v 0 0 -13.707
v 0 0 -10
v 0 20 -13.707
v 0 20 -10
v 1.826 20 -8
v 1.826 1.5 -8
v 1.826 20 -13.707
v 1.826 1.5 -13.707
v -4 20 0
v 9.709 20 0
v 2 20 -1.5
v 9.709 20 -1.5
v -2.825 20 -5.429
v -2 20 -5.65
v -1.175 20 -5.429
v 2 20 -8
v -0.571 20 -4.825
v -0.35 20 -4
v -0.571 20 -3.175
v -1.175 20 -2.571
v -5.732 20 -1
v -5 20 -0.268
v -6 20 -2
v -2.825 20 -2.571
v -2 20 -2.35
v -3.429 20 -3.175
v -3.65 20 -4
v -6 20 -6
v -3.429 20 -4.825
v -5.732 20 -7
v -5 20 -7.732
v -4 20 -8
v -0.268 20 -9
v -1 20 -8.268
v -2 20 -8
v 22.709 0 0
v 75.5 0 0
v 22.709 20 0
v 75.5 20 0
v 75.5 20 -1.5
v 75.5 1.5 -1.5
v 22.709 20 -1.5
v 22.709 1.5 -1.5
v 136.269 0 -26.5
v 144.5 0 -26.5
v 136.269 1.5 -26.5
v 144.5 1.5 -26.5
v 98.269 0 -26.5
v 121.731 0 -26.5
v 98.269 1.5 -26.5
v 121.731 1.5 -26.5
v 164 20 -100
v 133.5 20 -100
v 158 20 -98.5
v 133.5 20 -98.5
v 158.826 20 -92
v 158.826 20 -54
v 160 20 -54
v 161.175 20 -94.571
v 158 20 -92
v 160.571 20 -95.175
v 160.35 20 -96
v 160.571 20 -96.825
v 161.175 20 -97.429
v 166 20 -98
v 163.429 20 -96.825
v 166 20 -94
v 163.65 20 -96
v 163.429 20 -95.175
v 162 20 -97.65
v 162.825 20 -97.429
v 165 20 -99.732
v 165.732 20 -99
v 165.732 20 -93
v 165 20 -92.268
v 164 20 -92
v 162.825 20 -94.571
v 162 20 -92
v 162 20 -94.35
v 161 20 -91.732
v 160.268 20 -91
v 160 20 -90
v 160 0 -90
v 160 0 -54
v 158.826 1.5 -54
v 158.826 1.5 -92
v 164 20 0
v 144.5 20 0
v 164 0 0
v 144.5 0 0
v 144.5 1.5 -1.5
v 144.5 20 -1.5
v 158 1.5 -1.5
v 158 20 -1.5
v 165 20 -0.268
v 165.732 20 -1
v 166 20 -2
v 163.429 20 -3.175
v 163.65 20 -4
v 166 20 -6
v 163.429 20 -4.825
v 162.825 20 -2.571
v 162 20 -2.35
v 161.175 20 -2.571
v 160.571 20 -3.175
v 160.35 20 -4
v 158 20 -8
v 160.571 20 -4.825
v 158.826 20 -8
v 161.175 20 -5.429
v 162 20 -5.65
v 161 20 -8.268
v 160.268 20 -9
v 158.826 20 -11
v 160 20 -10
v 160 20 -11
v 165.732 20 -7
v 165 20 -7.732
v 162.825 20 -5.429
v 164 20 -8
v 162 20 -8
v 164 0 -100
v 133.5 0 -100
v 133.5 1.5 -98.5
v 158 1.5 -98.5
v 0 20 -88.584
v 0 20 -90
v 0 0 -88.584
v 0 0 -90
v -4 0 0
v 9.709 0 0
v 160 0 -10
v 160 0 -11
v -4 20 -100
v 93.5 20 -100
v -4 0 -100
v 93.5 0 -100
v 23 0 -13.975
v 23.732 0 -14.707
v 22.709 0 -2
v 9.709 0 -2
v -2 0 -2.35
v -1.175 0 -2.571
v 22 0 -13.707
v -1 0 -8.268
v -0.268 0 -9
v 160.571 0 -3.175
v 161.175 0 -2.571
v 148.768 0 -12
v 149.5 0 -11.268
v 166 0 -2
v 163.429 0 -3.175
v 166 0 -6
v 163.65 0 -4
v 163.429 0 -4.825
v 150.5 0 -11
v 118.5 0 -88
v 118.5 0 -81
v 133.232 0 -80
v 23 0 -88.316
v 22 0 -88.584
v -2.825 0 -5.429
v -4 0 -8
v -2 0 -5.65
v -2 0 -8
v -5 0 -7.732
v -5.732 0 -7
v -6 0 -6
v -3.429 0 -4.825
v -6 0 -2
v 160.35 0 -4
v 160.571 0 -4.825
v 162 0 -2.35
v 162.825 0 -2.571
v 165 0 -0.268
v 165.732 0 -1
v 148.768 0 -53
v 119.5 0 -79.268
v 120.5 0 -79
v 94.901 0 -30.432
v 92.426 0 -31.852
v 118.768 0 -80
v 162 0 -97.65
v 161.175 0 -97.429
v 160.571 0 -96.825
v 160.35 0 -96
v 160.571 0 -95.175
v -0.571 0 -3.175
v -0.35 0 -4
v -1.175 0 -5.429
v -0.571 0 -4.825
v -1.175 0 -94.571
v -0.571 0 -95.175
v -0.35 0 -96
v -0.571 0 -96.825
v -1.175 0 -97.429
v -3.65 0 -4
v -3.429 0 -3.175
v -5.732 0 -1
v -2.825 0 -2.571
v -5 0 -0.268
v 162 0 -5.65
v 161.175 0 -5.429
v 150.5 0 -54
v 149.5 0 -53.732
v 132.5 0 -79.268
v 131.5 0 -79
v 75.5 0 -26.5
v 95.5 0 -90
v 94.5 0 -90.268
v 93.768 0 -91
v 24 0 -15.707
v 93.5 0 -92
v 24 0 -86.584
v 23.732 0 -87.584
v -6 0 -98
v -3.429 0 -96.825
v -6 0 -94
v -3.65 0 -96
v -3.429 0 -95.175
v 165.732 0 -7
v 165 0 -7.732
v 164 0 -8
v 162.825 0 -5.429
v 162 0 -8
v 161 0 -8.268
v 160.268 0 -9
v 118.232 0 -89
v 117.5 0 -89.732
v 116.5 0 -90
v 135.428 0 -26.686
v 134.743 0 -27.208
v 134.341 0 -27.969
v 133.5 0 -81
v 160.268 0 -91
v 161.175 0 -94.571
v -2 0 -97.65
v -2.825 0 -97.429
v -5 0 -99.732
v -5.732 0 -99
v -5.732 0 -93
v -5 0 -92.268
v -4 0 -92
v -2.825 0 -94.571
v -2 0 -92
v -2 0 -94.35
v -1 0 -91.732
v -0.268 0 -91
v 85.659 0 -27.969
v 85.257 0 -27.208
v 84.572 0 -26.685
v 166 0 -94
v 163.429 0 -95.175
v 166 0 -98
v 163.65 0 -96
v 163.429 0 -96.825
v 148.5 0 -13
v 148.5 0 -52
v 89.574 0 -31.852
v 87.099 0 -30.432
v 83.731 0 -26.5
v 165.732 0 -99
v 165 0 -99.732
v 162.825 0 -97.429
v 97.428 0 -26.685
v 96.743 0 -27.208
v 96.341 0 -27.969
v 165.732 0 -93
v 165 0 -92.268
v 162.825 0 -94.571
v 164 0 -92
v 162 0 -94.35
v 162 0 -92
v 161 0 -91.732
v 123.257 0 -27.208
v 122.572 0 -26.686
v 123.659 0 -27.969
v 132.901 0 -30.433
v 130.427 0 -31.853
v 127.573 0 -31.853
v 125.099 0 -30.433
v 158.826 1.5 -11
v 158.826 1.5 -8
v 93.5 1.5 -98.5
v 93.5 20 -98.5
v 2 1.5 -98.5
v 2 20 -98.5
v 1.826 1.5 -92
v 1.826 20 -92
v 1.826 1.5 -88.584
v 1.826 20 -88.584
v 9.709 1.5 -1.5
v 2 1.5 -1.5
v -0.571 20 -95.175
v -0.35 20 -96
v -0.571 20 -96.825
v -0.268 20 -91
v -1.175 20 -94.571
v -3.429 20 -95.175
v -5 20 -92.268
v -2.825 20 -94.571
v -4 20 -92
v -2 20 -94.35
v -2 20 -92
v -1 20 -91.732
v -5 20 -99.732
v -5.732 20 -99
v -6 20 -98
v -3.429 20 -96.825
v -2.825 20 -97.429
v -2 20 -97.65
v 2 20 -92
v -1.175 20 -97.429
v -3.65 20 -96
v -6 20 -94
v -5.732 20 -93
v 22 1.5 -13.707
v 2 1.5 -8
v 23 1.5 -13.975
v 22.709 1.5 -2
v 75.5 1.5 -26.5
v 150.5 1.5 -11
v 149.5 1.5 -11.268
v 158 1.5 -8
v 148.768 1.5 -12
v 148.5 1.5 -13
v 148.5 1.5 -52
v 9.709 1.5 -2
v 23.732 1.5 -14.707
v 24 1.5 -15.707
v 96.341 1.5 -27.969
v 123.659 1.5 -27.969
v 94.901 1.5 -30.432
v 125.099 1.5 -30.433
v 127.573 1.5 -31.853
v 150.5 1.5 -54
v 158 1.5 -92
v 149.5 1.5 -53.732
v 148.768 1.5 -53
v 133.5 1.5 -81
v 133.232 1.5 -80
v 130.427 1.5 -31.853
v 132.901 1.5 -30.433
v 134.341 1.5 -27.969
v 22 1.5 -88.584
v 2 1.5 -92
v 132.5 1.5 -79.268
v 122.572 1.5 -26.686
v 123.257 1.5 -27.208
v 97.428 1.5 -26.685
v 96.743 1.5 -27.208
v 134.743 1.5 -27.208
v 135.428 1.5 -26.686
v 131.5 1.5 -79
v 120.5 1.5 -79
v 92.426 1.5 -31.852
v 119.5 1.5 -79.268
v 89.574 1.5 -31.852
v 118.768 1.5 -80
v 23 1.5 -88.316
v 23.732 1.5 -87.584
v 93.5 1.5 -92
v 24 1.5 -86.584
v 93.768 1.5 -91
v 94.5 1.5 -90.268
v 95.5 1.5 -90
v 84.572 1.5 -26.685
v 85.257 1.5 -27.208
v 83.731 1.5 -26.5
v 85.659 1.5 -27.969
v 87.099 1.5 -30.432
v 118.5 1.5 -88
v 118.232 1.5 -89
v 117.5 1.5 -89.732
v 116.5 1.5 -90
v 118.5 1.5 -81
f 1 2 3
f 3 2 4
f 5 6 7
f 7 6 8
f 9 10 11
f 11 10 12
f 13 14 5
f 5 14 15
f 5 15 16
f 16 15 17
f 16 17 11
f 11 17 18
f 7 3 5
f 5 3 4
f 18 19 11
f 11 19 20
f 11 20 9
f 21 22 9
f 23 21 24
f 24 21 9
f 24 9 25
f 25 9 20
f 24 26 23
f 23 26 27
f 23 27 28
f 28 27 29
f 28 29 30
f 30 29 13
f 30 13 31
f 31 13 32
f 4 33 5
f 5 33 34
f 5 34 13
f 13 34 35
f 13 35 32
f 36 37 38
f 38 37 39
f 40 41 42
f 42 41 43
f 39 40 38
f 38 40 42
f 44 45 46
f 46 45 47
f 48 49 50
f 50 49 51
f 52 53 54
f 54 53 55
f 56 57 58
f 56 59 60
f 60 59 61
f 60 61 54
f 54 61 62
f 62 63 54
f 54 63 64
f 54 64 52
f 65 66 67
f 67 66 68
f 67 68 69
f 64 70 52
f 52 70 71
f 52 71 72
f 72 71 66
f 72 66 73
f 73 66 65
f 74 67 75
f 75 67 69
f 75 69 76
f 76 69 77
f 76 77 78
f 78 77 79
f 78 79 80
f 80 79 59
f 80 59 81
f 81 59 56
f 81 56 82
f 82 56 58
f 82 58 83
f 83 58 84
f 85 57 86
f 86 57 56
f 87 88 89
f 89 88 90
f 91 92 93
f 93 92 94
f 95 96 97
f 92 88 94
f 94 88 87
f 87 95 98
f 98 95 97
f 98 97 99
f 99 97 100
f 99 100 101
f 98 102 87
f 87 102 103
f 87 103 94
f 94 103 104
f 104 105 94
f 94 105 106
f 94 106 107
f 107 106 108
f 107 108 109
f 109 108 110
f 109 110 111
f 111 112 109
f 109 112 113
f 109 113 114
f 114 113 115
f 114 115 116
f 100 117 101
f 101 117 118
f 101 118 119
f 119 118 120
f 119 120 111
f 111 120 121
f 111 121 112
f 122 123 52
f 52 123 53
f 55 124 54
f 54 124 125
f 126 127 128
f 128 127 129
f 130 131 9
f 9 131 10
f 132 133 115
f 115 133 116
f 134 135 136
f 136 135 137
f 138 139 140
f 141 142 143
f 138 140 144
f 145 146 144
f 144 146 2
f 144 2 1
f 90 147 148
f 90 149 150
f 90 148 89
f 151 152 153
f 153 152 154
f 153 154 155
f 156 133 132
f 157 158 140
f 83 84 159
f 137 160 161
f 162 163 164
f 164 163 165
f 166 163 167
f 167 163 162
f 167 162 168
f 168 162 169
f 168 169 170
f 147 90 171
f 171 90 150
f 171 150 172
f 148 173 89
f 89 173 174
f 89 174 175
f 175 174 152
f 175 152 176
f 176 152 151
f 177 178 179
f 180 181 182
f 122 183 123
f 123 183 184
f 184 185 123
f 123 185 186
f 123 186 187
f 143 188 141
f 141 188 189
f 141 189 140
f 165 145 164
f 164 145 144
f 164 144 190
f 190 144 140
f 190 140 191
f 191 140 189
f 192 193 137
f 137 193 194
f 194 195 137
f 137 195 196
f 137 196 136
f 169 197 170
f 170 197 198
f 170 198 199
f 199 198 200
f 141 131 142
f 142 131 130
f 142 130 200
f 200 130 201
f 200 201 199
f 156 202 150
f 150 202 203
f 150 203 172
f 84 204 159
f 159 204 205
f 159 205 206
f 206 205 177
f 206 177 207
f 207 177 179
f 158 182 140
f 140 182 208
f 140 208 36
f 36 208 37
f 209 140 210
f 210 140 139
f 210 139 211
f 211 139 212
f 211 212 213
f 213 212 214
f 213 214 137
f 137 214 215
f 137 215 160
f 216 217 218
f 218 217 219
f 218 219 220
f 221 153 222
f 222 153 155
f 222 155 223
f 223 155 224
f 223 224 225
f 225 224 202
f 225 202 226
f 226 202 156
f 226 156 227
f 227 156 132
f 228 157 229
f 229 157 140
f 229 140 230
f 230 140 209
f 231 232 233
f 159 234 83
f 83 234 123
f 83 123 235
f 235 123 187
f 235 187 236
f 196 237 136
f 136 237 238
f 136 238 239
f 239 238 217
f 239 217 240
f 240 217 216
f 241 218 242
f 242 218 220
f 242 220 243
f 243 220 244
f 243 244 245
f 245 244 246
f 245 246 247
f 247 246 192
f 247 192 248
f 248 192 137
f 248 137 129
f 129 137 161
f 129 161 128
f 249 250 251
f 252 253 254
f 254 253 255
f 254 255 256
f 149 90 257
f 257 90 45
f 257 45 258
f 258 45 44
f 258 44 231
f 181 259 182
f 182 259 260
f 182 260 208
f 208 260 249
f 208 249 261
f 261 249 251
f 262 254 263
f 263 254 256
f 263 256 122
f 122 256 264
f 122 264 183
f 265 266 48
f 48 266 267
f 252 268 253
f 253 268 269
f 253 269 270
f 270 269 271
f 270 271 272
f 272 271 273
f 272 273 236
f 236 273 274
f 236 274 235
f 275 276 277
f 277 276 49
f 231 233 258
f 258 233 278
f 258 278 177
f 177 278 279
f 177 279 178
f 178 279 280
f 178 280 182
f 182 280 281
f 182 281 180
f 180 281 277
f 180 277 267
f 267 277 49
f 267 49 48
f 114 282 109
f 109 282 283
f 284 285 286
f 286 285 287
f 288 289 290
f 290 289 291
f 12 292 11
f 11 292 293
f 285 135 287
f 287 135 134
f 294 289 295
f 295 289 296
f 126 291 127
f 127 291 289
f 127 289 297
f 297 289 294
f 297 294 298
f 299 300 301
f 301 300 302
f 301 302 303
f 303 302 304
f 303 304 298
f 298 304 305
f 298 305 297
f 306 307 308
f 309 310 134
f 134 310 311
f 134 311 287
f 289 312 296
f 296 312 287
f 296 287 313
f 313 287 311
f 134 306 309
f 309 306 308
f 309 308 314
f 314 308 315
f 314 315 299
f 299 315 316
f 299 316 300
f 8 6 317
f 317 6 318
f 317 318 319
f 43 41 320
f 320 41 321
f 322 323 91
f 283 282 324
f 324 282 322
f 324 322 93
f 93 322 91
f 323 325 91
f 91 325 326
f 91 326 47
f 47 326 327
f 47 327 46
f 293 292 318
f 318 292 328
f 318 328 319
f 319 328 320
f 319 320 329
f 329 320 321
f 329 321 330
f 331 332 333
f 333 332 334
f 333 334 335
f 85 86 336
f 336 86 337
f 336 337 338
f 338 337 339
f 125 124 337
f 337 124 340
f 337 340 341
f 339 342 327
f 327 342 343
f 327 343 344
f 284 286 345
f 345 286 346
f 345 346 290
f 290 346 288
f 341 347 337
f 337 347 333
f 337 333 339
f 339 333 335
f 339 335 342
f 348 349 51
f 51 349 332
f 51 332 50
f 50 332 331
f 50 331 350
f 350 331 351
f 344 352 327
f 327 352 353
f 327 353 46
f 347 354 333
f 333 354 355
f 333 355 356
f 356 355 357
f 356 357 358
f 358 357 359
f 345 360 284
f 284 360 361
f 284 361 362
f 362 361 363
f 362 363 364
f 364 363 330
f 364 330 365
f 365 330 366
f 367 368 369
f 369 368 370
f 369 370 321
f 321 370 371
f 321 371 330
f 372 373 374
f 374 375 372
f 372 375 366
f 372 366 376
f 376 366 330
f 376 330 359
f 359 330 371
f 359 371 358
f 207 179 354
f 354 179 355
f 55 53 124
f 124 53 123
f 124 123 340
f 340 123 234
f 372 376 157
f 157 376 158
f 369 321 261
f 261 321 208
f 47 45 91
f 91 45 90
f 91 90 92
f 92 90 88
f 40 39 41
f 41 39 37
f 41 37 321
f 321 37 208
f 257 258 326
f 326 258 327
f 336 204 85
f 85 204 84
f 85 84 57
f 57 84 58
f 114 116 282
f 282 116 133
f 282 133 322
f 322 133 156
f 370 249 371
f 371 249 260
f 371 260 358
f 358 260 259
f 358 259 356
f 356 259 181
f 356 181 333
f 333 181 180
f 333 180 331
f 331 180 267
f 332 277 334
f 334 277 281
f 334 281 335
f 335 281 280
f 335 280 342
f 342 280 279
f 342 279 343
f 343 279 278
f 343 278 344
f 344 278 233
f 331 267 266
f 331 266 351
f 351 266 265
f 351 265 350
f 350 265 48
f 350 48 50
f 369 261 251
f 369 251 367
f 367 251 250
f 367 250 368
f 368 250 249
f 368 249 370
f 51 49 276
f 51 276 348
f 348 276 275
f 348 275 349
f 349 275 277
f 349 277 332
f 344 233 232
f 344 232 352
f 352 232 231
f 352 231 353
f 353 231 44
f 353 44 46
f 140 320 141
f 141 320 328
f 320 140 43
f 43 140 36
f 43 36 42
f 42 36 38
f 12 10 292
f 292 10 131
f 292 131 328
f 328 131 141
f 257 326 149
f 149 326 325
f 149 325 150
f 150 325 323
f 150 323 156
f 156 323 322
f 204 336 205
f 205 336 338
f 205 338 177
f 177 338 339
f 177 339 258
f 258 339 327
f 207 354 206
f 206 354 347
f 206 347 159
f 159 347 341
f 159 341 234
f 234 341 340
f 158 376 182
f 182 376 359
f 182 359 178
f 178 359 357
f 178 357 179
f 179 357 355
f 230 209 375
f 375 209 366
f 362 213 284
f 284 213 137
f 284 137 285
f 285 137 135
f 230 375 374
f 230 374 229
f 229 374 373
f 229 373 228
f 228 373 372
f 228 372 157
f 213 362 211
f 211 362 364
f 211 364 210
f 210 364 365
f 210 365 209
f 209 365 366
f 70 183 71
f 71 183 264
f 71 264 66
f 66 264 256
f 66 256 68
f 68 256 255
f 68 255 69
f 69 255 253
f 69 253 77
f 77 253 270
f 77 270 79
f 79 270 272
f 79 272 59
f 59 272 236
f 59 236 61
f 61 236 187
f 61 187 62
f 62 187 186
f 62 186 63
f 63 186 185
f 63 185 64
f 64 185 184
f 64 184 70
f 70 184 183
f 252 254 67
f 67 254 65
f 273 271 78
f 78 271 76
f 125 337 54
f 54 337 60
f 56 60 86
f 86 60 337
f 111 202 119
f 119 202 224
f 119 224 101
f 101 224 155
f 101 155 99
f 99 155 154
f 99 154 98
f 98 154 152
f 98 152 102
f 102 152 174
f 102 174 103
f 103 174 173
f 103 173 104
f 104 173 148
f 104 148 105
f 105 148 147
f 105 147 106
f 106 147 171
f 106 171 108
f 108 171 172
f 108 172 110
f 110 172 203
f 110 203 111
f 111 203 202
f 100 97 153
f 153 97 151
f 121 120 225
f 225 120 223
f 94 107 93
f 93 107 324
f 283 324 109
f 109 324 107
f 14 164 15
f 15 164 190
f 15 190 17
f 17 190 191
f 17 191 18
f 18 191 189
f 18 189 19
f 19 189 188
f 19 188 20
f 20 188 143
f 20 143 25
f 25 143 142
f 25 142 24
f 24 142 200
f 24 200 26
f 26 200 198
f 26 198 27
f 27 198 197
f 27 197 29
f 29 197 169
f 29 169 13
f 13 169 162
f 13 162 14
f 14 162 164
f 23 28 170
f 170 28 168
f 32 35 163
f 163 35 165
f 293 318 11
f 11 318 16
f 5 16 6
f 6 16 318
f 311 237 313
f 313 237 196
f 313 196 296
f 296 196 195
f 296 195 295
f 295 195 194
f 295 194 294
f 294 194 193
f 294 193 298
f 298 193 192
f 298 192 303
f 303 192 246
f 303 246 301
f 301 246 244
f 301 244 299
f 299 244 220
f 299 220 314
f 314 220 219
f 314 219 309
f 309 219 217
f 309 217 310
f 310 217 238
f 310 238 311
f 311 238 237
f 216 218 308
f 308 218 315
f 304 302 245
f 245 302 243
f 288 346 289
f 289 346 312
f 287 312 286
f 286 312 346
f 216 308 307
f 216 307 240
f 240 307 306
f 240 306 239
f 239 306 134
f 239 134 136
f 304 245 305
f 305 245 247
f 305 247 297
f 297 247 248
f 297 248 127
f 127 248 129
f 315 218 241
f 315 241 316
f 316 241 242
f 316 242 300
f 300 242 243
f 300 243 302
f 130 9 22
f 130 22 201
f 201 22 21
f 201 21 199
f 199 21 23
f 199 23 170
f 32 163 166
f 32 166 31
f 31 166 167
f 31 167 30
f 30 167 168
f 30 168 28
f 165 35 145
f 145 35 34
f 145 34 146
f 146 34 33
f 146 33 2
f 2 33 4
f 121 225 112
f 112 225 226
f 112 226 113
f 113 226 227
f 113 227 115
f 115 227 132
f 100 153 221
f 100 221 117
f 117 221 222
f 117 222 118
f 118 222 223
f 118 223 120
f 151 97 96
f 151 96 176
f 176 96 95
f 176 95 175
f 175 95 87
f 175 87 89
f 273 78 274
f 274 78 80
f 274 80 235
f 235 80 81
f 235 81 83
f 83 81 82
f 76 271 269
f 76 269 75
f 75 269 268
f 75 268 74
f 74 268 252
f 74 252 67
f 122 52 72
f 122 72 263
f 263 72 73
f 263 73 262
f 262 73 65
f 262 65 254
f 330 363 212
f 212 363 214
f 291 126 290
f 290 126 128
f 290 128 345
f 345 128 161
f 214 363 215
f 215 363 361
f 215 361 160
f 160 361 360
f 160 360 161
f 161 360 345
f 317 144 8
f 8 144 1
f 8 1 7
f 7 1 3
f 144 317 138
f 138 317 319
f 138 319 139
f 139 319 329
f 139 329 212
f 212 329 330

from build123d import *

# Parameters (mm, degrees)
SKETCH1_W           = 160
SKETCH1_H           = 100
BOSS_EXTRUDE1_DEPTH = 1.5
SKETCH2_W           = 160
SKETCH2_H           = 100
SKETCH2_W_2         = 157
SKETCH2_H_2         = 97
BOSS_EXTRUDE2_DEPTH = 20
FILLET1_R           = 2
SKETCH4_W           = 15
SKETCH4_H           = 21
CUT_EXTRUDE1_DEPTH  = 190.73665961
SKETCH5_W           = 69
SKETCH5_H           = 26.5
CUT_EXTRUDE2_DEPTH  = 190.73665961
SKETCH6_W           = 11.5
SKETCH6_H           = 43
CUT_EXTRUDE3_DEPTH  = 190.73665961
CUT_EXTRUDE5_DEPTH  = 10
FILLET2_R           = 2
SKETCH10_W          = 13
SKETCH10_H          = 2
CUT_EXTRUDE6_DEPTH  = 20
FILLET4_R           = 2
SKETCH11_W          = 25
SKETCH11_H          = 10
CUT_EXTRUDE7_DEPTH  = 20
FILLET5_R           = 2
SKETCH12_W          = 8
SKETCH12_H          = 8
SKETCH12_R          = 1.65
BOSS_EXTRUDE3_DEPTH = 20
FILLET6_R           = 2
SKETCH14_W          = 24
SKETCH14_H          = 64.876727664
CUT_EXTRUDE8_DEPTH  = 22
SKETCH16_W          = 24
SKETCH16_H          = 5
CUT_EXTRUDE9_DEPTH  = 20
FILLET8_R           = 2
SKETCH18_W          = 24
SKETCH18_H          = 5
CUT_EXTRUDE10_DEPTH = 20
FILLET9_R           = 2


with BuildPart() as part:
    # Sketch1 → Boss-Extrude1 (new body)
    with BuildSketch(Plane(origin=(0, 0, 0), x_dir=(1, 0, 0), z_dir=(0, 1, 0))):
        with Locations((80, 50)):
            Rectangle(SKETCH1_W, SKETCH1_H)
    extrude(amount=BOSS_EXTRUDE1_DEPTH)

    # Sketch2 → Boss-Extrude2 (add)
    with BuildSketch(Plane(origin=(0, 0, 0), x_dir=(1, 0, 0), z_dir=(0, 1, 0))):
        with Locations((80, 50)):
            Rectangle(SKETCH2_W, SKETCH2_H)
        with Locations((80.326409395, 50)):
            Rectangle(SKETCH2_W_2, SKETCH2_H_2, mode=Mode.SUBTRACT)
    extrude(amount=BOSS_EXTRUDE2_DEPTH)

    # Fillet1
    fillet1_edges = [part.edges().sort_by_distance(p)[0] for p in [
        (0, 10, -100),
        (160, 10, -100),
        (160, 10, 0),
        (0, 10, 0),
    ]]
    fillet(fillet1_edges, radius=FILLET1_R)

    # Sketch4 → Cut-Extrude1 (cut, through all)
    with BuildSketch(Plane.XZ):
        with Locations((126, -89.5)):
            Rectangle(SKETCH4_W, SKETCH4_H)
    extrude(amount=-CUT_EXTRUDE1_DEPTH, mode=Mode.SUBTRACT)

    # Sketch5 → Cut-Extrude2 (cut, through all)
    with BuildSketch(Plane.XZ):
        with Locations((110, -13.25)):
            Rectangle(SKETCH5_W, SKETCH5_H)
    extrude(amount=-CUT_EXTRUDE2_DEPTH, mode=Mode.SUBTRACT)

    # Sketch6 → Cut-Extrude3 (cut, through all)
    with BuildSketch(Plane.XZ):
        with Locations((154.25, -32.5)):
            Rectangle(SKETCH6_W, SKETCH6_H)
    extrude(amount=-CUT_EXTRUDE3_DEPTH, mode=Mode.SUBTRACT)

    # Sketch9 → Cut-Extrude5 (cut)
    with BuildSketch(Plane.XZ):
        with BuildLine():
            Line((134.539408017, -26.5), (123.460591983, -26.5))
            ThreePointArc((123.460591983, -26.5), (129, -32.039408017), (134.539408017, -26.5))
        make_face()
        with BuildLine():
            Line((96.539, -26.5), (85.461, -26.5))
            ThreePointArc((85.461, -26.5), (91, -32.039), (96.539, -26.5))
        make_face()
    extrude(amount=-CUT_EXTRUDE5_DEPTH, mode=Mode.SUBTRACT)

    # Fillet2
    fillet2_edges = [part.edges().sort_by_distance(p)[0] for p in [
        (85.461, 0.75, -26.5),
        (96.539, 0.75, -26.5),
        (123.460591983, 0.75, -26.5),
        (134.539408017, 0.75, -26.5),
    ]]
    fillet(fillet2_edges, radius=FILLET2_R)

    # Sketch10 → Cut-Extrude6 (cut)
    with BuildSketch(Plane.XZ):
        with Locations((16.208817875, -1)):
            Rectangle(SKETCH10_W, SKETCH10_H)
    extrude(amount=-CUT_EXTRUDE6_DEPTH, mode=Mode.SUBTRACT)

    # Fillet4
    fillet4_edges = [part.edges().sort_by_distance(p)[0] for p in [
        (148.5, 0.75, -54),
        (148.5, 0.75, -11),
        (118.5, 0.75, -79),
        (133.5, 0.75, -79),
    ]]
    fillet(fillet4_edges, radius=FILLET4_R)

    # Sketch11 → Cut-Extrude7 (cut)
    with BuildSketch(Plane.XZ):
        with Locations((106, -95)):
            Rectangle(SKETCH11_W, SKETCH11_H)
    extrude(amount=-CUT_EXTRUDE7_DEPTH, mode=Mode.SUBTRACT)

    # Fillet5
    fillet5_edges = [part.edges().sort_by_distance(p)[0] for p in [
        (118.5, 0.75, -90),
        (93.5, 0.75, -90),
    ]]
    fillet(fillet5_edges, radius=FILLET5_R)

    # Sketch12 → Boss-Extrude3 (add)
    # profile 1 of 4: a face of its own
    with BuildSketch(Plane.XZ):
        with Locations((-2, -4)):
            Rectangle(SKETCH12_W, SKETCH12_H)
        with Locations(Location((-2, -4, 0), (0, 0, 90))):
            Circle(SKETCH12_R, mode=Mode.SUBTRACT)
    # profile 2 of 4: a face of its own
    with BuildSketch(Plane.XZ):
        with Locations((162, -96)):
            Rectangle(SKETCH12_W, SKETCH12_H)
        with Locations(Location((162, -96, 0), (0, 0, 270))):
            Circle(SKETCH12_R, mode=Mode.SUBTRACT)
    # profile 3 of 4: a face of its own
    with BuildSketch(Plane.XZ):
        with Locations((162, -4)):
            Rectangle(SKETCH12_W, SKETCH12_H)
        with Locations(Location((162, -4, 0), (0, 0, 270))):
            Circle(SKETCH12_R, mode=Mode.SUBTRACT)
    # profile 4 of 4: a face of its own
    with BuildSketch(Plane.XZ):
        with Locations((-2, -96)):
            Rectangle(SKETCH12_W, SKETCH12_H)
        with Locations(Location((-2, -96, 0), (0, 0, 90))):
            Circle(SKETCH12_R, mode=Mode.SUBTRACT)
    extrude(amount=-BOSS_EXTRUDE3_DEPTH)

    # Fillet6
    fillet6_edges = [part.edges().sort_by_distance(p)[0] for p in [
        (160, 10, -92),
        (166, 10, -92),
        (166, 10, -100),
        (166, 10, -8),
        (160, 10, -8),
        (166, 10, 0),
        (0, 10, -8),
        (-6, 10, -8),
        (-6, 10, 0),
        (-6, 10, -92),
        (0, 10, -92),
        (-6, 10, -100),
    ]]
    fillet(fillet6_edges, radius=FILLET6_R)

    # Sketch14 → Cut-Extrude8 (cut)
    with BuildSketch(Plane.XZ):
        with Locations((12, -51.145467828)):
            Rectangle(SKETCH14_W, SKETCH14_H)
    extrude(amount=-CUT_EXTRUDE8_DEPTH, mode=Mode.SUBTRACT)

    # Sketch16 → Cut-Extrude9 (cut)
    with BuildSketch(Plane.XZ):
        with Locations((12, -86.08383166)):
            Rectangle(SKETCH16_W, SKETCH16_H)
    extrude(amount=-CUT_EXTRUDE9_DEPTH, mode=Mode.SUBTRACT)

    # Fillet8
    fillet8_edges = [part.edges().sort_by_distance(p)[0] for p in [
        (24, 0.75, -88.58383166),
    ]]
    fillet(fillet8_edges, radius=FILLET8_R)

    # Sketch18 → Cut-Extrude10 (cut)
    with BuildSketch(Plane.XZ):
        with Locations((12, -16.207103996)):
            Rectangle(SKETCH18_W, SKETCH18_H)
    extrude(amount=-CUT_EXTRUDE10_DEPTH, mode=Mode.SUBTRACT)

    # Fillet9
    fillet9_edges = [part.edges().sort_by_distance(p)[0] for p in [
        (24, 0.75, -13.707103996),
    ]]
    fillet(fillet9_edges, radius=FILLET9_R)


solid = part.part
